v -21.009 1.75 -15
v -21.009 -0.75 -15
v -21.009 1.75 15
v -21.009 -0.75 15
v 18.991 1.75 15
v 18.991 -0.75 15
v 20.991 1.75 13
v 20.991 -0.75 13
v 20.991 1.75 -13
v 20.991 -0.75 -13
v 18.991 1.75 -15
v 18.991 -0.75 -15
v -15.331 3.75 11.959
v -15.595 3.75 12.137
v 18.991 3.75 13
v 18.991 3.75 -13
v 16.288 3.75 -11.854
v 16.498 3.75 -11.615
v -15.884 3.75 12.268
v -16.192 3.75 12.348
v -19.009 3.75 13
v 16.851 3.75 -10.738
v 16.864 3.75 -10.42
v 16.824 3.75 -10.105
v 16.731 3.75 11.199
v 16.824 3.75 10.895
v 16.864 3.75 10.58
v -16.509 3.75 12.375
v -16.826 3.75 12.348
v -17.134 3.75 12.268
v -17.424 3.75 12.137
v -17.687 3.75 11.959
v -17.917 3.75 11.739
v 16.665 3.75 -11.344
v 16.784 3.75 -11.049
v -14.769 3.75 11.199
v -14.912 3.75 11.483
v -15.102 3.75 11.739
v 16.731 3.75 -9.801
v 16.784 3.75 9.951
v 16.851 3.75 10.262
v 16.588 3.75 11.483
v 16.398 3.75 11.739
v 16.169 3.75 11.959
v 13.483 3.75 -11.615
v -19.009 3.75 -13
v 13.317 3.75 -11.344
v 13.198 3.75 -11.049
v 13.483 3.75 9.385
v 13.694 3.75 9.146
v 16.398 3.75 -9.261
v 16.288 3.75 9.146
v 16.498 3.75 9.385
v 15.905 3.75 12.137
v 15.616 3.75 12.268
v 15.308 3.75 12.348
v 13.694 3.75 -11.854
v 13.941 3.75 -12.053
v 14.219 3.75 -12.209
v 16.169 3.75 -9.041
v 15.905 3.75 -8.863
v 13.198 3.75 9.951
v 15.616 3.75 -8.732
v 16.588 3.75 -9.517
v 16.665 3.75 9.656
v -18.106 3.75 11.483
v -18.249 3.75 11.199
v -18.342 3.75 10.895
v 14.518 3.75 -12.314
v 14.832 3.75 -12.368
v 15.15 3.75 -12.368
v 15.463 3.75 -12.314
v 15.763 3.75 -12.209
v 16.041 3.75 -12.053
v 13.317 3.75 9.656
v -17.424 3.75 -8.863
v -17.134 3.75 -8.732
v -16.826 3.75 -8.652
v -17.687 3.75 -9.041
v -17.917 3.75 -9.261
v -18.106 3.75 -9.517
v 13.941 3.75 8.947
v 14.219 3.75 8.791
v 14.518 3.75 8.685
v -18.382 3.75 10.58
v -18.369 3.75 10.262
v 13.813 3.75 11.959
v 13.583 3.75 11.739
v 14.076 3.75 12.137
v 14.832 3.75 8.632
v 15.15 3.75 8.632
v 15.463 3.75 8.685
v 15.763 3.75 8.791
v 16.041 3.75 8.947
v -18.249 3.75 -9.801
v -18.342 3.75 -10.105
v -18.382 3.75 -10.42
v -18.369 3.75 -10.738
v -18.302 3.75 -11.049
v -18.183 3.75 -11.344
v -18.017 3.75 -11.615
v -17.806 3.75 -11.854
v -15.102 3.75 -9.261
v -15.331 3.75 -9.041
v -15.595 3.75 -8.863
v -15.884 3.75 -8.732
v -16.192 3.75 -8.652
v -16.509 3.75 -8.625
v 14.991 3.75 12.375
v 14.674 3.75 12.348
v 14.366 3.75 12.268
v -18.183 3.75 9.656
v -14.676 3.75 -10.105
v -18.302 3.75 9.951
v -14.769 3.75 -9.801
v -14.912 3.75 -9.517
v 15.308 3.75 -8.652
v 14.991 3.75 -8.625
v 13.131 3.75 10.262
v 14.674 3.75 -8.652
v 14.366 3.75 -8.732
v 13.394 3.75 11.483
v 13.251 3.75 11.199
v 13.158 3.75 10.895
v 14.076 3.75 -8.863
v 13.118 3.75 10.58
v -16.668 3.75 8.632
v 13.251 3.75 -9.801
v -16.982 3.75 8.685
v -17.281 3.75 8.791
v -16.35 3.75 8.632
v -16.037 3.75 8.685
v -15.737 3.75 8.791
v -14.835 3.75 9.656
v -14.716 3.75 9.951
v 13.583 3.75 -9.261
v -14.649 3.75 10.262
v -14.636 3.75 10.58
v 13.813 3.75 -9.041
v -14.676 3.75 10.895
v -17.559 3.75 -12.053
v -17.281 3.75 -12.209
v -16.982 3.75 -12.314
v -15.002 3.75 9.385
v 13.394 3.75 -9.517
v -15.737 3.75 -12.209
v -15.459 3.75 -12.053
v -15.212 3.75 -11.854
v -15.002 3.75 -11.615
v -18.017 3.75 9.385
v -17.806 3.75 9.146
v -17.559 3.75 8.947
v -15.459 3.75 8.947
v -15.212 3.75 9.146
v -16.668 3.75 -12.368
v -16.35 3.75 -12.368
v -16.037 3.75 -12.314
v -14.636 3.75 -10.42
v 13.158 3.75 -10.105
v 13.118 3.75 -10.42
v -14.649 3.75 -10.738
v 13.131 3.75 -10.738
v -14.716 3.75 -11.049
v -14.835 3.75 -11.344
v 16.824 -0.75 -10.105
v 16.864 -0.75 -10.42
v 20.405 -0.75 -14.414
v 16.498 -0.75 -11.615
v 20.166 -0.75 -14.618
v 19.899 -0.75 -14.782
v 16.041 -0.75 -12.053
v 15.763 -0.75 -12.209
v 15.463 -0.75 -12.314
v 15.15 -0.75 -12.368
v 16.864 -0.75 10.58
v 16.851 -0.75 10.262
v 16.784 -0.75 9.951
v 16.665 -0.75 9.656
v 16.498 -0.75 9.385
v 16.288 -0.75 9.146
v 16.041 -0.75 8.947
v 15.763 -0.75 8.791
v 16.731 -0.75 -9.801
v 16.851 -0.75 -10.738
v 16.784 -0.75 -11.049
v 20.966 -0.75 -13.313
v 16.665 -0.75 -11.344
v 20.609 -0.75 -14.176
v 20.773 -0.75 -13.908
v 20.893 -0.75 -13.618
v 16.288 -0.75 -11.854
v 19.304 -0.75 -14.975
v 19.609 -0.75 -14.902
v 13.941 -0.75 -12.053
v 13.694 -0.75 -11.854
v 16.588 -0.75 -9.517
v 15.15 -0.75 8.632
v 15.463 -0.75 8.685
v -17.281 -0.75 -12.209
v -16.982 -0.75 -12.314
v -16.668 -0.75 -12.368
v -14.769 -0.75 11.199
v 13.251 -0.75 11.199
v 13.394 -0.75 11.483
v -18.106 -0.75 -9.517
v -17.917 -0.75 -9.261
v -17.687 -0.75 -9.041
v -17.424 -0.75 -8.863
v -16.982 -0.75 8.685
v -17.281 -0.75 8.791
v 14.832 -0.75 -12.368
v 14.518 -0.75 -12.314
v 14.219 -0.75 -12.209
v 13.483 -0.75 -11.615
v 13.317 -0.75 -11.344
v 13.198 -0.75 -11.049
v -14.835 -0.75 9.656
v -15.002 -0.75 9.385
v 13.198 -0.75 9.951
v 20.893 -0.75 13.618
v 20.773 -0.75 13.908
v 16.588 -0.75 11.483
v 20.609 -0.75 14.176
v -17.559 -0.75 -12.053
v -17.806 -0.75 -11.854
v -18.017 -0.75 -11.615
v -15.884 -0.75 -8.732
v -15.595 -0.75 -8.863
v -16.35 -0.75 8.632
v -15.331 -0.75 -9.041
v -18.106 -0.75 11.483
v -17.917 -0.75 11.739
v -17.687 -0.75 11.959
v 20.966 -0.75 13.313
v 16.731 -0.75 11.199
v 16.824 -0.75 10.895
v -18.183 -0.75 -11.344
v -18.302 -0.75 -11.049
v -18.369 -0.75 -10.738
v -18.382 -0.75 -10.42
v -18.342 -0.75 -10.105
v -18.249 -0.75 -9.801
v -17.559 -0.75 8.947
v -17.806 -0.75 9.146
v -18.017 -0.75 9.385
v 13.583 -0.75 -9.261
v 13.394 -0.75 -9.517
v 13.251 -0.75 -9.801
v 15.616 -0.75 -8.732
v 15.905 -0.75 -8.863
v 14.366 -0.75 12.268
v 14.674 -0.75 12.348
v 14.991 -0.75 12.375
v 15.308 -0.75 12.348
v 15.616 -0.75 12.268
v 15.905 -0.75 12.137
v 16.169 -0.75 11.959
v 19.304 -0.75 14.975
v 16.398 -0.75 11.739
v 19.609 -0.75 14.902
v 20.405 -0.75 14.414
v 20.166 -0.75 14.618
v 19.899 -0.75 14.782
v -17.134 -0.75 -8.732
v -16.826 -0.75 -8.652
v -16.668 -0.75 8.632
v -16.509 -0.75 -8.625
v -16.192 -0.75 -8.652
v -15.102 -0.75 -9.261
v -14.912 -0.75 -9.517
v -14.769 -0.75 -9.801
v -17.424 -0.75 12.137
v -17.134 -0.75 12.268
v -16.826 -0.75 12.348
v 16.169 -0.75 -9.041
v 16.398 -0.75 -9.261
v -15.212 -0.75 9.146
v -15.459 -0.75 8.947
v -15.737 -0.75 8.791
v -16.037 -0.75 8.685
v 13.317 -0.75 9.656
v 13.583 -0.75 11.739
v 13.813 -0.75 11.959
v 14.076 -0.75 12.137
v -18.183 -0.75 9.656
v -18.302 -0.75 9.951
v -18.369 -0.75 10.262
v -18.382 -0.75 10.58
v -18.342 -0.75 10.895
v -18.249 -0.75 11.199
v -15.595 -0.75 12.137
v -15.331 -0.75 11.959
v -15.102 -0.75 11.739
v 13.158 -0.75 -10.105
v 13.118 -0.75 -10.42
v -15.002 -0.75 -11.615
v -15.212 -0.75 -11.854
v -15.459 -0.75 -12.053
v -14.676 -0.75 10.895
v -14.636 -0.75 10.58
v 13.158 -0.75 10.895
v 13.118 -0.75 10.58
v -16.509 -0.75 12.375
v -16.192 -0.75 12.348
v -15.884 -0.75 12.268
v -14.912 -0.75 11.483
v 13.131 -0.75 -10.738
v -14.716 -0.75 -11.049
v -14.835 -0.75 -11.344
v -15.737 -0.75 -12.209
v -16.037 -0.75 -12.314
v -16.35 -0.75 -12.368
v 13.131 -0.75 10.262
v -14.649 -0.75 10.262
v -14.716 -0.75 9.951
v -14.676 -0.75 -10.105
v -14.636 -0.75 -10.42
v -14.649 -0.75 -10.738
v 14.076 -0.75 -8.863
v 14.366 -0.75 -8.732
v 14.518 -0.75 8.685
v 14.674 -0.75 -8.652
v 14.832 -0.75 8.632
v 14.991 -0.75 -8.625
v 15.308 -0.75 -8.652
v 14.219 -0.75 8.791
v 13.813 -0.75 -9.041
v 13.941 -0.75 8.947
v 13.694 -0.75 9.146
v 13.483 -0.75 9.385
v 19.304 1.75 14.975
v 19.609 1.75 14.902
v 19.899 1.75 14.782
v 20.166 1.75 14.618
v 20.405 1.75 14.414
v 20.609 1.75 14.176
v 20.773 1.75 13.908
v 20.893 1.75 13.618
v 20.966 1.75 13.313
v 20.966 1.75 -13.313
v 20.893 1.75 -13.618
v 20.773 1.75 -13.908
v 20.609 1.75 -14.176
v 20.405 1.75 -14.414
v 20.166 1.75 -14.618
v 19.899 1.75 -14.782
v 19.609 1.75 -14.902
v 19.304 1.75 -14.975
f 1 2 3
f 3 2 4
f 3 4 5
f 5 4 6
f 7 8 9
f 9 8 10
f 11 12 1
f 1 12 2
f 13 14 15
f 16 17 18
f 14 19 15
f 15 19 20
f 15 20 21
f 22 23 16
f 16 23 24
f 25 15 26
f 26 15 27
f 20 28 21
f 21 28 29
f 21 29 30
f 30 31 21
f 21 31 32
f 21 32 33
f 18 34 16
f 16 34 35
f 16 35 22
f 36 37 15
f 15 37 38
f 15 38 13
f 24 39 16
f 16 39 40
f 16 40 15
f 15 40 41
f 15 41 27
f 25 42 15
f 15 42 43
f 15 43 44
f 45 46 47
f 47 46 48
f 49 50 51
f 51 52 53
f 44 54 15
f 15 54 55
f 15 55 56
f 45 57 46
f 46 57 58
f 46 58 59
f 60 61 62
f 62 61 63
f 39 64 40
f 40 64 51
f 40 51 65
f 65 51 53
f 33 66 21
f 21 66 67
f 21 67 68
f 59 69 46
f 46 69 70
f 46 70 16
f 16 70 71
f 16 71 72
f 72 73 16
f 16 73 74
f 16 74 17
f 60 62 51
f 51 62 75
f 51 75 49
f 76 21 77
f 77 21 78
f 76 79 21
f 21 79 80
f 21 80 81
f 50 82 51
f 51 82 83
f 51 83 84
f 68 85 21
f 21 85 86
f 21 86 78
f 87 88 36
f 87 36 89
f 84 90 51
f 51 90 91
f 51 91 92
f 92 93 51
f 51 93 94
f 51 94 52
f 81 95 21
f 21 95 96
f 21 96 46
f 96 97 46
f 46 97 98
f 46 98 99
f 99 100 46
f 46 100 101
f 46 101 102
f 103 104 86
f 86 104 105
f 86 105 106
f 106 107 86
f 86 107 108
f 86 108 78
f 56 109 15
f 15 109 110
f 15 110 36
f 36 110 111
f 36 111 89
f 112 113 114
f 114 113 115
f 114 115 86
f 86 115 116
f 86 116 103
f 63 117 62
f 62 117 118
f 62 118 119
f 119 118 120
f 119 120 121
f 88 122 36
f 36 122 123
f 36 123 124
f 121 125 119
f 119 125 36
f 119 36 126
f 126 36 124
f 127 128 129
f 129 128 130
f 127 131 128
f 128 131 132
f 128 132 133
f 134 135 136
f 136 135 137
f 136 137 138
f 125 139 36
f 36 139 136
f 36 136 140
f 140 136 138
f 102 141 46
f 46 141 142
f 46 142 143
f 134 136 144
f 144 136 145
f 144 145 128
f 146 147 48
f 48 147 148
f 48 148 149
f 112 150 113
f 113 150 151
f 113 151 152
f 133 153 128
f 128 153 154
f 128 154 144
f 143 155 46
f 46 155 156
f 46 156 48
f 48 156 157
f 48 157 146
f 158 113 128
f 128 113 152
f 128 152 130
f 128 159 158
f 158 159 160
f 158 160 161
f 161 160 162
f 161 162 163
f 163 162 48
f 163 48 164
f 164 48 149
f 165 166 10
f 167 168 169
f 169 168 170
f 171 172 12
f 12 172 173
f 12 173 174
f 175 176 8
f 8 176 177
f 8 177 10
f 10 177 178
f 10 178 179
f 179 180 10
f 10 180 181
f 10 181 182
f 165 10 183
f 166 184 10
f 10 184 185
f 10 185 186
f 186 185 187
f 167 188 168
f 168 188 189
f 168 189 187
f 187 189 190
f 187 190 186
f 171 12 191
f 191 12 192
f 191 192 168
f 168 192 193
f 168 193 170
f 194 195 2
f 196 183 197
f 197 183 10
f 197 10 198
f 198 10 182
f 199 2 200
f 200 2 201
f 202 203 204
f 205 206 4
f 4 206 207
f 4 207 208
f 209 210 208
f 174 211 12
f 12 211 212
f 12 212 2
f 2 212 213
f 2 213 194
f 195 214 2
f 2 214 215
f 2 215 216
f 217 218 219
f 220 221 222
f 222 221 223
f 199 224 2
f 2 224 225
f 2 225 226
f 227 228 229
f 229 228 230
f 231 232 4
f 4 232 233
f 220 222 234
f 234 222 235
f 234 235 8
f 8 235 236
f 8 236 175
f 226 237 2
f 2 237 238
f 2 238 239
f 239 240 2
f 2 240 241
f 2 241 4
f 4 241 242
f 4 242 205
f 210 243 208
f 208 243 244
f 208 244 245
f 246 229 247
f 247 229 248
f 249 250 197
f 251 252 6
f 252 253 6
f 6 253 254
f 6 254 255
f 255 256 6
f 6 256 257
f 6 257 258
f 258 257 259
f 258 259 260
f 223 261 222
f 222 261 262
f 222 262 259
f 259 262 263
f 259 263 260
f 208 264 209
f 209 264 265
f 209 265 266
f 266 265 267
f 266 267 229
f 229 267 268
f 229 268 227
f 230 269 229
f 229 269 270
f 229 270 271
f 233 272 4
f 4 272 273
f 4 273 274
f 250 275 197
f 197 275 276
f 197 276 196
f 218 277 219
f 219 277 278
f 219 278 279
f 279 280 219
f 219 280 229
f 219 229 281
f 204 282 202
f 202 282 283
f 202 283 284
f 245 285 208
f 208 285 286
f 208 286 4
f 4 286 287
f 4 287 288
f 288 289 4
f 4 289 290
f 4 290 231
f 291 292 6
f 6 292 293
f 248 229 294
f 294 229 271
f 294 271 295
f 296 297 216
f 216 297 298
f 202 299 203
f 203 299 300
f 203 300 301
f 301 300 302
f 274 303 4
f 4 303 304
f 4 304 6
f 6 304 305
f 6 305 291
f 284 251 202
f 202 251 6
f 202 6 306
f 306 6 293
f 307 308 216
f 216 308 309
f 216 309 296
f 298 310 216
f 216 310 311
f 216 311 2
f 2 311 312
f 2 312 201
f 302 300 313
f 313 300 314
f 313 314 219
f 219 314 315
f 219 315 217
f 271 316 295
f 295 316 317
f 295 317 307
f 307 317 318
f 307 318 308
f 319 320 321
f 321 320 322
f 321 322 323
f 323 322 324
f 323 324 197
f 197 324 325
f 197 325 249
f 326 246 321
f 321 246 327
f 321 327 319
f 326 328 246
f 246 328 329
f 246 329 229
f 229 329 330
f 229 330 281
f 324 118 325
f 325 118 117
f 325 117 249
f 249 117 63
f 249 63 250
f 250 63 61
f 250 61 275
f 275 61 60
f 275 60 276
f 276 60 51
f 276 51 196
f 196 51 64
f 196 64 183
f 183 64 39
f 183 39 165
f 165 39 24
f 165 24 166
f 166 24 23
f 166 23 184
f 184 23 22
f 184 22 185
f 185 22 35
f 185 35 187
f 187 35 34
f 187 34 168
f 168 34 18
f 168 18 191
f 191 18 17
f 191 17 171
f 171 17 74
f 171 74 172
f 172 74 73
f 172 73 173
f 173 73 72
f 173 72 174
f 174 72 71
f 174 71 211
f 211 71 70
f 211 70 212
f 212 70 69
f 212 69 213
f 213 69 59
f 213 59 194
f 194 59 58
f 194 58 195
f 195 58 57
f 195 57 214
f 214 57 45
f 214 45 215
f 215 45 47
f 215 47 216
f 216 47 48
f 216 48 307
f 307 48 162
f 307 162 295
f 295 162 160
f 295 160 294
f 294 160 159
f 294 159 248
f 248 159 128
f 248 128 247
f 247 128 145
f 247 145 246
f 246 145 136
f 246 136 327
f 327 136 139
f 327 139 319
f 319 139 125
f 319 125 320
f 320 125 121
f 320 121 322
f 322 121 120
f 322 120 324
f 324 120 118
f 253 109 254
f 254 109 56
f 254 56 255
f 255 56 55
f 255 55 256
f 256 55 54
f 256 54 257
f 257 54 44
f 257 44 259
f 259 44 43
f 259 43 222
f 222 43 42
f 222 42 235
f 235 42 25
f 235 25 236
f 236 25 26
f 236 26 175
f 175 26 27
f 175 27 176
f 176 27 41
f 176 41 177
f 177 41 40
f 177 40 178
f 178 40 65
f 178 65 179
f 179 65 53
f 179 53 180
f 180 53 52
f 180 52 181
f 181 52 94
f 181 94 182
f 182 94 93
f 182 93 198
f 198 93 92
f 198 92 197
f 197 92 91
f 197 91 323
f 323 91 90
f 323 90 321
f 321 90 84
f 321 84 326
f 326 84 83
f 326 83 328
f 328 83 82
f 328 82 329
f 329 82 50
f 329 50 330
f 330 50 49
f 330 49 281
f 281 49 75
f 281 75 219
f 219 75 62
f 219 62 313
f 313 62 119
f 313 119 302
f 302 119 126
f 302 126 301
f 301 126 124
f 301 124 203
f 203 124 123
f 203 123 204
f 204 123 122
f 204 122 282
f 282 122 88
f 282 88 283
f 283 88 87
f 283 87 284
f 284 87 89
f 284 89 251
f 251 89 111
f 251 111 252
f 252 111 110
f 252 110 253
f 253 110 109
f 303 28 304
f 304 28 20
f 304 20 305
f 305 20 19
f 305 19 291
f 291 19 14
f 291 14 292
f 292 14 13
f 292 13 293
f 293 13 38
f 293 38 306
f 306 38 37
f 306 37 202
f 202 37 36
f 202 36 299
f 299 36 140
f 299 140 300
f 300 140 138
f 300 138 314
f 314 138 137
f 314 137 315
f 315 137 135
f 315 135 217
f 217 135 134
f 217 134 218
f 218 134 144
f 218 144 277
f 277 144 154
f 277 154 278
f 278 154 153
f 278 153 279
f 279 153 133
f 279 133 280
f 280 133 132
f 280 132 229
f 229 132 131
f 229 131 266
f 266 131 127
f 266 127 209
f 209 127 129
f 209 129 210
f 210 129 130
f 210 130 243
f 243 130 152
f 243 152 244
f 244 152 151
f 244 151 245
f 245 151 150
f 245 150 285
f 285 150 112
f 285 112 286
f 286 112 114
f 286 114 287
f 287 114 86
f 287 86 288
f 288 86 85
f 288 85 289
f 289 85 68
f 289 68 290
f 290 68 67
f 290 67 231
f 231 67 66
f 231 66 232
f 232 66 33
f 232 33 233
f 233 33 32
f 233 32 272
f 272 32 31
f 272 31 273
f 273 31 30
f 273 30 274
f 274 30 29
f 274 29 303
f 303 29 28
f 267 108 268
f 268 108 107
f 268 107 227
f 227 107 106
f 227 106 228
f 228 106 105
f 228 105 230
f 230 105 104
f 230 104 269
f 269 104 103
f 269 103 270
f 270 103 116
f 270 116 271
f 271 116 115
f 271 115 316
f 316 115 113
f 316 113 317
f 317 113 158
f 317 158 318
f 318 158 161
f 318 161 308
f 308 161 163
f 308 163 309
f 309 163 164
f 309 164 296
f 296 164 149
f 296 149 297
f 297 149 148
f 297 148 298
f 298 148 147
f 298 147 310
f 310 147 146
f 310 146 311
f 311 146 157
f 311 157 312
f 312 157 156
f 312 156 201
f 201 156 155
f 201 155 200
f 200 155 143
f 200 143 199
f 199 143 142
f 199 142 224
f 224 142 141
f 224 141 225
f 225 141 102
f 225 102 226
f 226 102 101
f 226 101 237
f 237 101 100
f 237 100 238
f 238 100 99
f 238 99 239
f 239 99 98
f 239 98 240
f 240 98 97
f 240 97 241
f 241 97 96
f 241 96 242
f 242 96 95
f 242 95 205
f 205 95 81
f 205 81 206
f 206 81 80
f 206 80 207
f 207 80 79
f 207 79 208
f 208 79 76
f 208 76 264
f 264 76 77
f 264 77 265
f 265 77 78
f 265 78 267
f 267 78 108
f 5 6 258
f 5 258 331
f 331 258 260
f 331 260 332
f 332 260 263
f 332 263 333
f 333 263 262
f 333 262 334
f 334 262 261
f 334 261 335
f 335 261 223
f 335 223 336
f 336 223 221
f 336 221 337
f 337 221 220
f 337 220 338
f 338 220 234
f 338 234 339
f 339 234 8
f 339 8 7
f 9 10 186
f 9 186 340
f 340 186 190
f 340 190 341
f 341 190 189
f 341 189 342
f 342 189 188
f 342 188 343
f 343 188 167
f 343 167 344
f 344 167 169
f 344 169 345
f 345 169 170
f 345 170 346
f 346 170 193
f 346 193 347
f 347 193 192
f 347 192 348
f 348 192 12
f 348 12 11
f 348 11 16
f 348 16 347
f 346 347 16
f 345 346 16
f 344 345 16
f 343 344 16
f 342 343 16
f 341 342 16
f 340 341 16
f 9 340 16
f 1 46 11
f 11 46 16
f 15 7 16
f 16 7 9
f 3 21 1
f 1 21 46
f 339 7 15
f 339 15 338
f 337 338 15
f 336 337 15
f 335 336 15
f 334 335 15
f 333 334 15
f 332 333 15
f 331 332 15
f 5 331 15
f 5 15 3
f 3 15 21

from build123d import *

# Parameters (mm, degrees)
SKETCH1_W           = 28
SKETCH1_H           = 20
BOSS_EXTRUDE1_DEPTH = 3
M3_TAPPED_HOLE1_D   = 2.5
SCALE1_SCALE        = 1.5
FILLET1_R           = 2
CHAMFER1_SIZE       = 2


with BuildPart() as part:
    # Sketch1 → Boss-Extrude1 (new body)
    with BuildSketch(Plane(origin=(0, 0, 0), x_dir=(1, 0, 0), z_dir=(0, 1, 0))):
        Rectangle(SKETCH1_W, SKETCH1_H)
    extrude(amount=BOSS_EXTRUDE1_DEPTH)

    # M3 Tapped Hole1 (through all)
    with Locations(Plane(origin=(0, 3, 0), x_dir=(1, 0, 0), z_dir=(0, 1, 0))):
        with Locations((-11, 7), (-11, -7), (10, -7), (10, 7)):
            Hole(M3_TAPPED_HOLE1_D / 2)


with BuildPart() as part_1:
    # Scale1: scaled about (0.018168231, 1.5, 0)
    add(part.part.scale(SCALE1_SCALE).moved(Location((-0.009084115, -0.75, 0))))

    # Fillet1
    fillet1_edges = [part_1.edges().sort_by_distance(p)[0] for p in [
        (20.990915884, 1.5, -15),
        (20.990915884, 1.5, 15),
    ]]
    fillet(fillet1_edges, radius=FILLET1_R)

    # Chamfer1
    chamfer1_edges = [part_1.edges().sort_by_distance(p)[0] for p in [
        (20.990915884, 3.75, 0),
        (-1.009084116, 3.75, -15),
        (20.405129447, 3.75, -14.414213562),
        (20.405129447, 3.75, 14.414213562),
        (-21.009084116, 3.75, 0),
        (-1.009084116, 3.75, 15),
    ]]
    chamfer(chamfer1_edges, length=CHAMFER1_SIZE)


solid = part_1.part
